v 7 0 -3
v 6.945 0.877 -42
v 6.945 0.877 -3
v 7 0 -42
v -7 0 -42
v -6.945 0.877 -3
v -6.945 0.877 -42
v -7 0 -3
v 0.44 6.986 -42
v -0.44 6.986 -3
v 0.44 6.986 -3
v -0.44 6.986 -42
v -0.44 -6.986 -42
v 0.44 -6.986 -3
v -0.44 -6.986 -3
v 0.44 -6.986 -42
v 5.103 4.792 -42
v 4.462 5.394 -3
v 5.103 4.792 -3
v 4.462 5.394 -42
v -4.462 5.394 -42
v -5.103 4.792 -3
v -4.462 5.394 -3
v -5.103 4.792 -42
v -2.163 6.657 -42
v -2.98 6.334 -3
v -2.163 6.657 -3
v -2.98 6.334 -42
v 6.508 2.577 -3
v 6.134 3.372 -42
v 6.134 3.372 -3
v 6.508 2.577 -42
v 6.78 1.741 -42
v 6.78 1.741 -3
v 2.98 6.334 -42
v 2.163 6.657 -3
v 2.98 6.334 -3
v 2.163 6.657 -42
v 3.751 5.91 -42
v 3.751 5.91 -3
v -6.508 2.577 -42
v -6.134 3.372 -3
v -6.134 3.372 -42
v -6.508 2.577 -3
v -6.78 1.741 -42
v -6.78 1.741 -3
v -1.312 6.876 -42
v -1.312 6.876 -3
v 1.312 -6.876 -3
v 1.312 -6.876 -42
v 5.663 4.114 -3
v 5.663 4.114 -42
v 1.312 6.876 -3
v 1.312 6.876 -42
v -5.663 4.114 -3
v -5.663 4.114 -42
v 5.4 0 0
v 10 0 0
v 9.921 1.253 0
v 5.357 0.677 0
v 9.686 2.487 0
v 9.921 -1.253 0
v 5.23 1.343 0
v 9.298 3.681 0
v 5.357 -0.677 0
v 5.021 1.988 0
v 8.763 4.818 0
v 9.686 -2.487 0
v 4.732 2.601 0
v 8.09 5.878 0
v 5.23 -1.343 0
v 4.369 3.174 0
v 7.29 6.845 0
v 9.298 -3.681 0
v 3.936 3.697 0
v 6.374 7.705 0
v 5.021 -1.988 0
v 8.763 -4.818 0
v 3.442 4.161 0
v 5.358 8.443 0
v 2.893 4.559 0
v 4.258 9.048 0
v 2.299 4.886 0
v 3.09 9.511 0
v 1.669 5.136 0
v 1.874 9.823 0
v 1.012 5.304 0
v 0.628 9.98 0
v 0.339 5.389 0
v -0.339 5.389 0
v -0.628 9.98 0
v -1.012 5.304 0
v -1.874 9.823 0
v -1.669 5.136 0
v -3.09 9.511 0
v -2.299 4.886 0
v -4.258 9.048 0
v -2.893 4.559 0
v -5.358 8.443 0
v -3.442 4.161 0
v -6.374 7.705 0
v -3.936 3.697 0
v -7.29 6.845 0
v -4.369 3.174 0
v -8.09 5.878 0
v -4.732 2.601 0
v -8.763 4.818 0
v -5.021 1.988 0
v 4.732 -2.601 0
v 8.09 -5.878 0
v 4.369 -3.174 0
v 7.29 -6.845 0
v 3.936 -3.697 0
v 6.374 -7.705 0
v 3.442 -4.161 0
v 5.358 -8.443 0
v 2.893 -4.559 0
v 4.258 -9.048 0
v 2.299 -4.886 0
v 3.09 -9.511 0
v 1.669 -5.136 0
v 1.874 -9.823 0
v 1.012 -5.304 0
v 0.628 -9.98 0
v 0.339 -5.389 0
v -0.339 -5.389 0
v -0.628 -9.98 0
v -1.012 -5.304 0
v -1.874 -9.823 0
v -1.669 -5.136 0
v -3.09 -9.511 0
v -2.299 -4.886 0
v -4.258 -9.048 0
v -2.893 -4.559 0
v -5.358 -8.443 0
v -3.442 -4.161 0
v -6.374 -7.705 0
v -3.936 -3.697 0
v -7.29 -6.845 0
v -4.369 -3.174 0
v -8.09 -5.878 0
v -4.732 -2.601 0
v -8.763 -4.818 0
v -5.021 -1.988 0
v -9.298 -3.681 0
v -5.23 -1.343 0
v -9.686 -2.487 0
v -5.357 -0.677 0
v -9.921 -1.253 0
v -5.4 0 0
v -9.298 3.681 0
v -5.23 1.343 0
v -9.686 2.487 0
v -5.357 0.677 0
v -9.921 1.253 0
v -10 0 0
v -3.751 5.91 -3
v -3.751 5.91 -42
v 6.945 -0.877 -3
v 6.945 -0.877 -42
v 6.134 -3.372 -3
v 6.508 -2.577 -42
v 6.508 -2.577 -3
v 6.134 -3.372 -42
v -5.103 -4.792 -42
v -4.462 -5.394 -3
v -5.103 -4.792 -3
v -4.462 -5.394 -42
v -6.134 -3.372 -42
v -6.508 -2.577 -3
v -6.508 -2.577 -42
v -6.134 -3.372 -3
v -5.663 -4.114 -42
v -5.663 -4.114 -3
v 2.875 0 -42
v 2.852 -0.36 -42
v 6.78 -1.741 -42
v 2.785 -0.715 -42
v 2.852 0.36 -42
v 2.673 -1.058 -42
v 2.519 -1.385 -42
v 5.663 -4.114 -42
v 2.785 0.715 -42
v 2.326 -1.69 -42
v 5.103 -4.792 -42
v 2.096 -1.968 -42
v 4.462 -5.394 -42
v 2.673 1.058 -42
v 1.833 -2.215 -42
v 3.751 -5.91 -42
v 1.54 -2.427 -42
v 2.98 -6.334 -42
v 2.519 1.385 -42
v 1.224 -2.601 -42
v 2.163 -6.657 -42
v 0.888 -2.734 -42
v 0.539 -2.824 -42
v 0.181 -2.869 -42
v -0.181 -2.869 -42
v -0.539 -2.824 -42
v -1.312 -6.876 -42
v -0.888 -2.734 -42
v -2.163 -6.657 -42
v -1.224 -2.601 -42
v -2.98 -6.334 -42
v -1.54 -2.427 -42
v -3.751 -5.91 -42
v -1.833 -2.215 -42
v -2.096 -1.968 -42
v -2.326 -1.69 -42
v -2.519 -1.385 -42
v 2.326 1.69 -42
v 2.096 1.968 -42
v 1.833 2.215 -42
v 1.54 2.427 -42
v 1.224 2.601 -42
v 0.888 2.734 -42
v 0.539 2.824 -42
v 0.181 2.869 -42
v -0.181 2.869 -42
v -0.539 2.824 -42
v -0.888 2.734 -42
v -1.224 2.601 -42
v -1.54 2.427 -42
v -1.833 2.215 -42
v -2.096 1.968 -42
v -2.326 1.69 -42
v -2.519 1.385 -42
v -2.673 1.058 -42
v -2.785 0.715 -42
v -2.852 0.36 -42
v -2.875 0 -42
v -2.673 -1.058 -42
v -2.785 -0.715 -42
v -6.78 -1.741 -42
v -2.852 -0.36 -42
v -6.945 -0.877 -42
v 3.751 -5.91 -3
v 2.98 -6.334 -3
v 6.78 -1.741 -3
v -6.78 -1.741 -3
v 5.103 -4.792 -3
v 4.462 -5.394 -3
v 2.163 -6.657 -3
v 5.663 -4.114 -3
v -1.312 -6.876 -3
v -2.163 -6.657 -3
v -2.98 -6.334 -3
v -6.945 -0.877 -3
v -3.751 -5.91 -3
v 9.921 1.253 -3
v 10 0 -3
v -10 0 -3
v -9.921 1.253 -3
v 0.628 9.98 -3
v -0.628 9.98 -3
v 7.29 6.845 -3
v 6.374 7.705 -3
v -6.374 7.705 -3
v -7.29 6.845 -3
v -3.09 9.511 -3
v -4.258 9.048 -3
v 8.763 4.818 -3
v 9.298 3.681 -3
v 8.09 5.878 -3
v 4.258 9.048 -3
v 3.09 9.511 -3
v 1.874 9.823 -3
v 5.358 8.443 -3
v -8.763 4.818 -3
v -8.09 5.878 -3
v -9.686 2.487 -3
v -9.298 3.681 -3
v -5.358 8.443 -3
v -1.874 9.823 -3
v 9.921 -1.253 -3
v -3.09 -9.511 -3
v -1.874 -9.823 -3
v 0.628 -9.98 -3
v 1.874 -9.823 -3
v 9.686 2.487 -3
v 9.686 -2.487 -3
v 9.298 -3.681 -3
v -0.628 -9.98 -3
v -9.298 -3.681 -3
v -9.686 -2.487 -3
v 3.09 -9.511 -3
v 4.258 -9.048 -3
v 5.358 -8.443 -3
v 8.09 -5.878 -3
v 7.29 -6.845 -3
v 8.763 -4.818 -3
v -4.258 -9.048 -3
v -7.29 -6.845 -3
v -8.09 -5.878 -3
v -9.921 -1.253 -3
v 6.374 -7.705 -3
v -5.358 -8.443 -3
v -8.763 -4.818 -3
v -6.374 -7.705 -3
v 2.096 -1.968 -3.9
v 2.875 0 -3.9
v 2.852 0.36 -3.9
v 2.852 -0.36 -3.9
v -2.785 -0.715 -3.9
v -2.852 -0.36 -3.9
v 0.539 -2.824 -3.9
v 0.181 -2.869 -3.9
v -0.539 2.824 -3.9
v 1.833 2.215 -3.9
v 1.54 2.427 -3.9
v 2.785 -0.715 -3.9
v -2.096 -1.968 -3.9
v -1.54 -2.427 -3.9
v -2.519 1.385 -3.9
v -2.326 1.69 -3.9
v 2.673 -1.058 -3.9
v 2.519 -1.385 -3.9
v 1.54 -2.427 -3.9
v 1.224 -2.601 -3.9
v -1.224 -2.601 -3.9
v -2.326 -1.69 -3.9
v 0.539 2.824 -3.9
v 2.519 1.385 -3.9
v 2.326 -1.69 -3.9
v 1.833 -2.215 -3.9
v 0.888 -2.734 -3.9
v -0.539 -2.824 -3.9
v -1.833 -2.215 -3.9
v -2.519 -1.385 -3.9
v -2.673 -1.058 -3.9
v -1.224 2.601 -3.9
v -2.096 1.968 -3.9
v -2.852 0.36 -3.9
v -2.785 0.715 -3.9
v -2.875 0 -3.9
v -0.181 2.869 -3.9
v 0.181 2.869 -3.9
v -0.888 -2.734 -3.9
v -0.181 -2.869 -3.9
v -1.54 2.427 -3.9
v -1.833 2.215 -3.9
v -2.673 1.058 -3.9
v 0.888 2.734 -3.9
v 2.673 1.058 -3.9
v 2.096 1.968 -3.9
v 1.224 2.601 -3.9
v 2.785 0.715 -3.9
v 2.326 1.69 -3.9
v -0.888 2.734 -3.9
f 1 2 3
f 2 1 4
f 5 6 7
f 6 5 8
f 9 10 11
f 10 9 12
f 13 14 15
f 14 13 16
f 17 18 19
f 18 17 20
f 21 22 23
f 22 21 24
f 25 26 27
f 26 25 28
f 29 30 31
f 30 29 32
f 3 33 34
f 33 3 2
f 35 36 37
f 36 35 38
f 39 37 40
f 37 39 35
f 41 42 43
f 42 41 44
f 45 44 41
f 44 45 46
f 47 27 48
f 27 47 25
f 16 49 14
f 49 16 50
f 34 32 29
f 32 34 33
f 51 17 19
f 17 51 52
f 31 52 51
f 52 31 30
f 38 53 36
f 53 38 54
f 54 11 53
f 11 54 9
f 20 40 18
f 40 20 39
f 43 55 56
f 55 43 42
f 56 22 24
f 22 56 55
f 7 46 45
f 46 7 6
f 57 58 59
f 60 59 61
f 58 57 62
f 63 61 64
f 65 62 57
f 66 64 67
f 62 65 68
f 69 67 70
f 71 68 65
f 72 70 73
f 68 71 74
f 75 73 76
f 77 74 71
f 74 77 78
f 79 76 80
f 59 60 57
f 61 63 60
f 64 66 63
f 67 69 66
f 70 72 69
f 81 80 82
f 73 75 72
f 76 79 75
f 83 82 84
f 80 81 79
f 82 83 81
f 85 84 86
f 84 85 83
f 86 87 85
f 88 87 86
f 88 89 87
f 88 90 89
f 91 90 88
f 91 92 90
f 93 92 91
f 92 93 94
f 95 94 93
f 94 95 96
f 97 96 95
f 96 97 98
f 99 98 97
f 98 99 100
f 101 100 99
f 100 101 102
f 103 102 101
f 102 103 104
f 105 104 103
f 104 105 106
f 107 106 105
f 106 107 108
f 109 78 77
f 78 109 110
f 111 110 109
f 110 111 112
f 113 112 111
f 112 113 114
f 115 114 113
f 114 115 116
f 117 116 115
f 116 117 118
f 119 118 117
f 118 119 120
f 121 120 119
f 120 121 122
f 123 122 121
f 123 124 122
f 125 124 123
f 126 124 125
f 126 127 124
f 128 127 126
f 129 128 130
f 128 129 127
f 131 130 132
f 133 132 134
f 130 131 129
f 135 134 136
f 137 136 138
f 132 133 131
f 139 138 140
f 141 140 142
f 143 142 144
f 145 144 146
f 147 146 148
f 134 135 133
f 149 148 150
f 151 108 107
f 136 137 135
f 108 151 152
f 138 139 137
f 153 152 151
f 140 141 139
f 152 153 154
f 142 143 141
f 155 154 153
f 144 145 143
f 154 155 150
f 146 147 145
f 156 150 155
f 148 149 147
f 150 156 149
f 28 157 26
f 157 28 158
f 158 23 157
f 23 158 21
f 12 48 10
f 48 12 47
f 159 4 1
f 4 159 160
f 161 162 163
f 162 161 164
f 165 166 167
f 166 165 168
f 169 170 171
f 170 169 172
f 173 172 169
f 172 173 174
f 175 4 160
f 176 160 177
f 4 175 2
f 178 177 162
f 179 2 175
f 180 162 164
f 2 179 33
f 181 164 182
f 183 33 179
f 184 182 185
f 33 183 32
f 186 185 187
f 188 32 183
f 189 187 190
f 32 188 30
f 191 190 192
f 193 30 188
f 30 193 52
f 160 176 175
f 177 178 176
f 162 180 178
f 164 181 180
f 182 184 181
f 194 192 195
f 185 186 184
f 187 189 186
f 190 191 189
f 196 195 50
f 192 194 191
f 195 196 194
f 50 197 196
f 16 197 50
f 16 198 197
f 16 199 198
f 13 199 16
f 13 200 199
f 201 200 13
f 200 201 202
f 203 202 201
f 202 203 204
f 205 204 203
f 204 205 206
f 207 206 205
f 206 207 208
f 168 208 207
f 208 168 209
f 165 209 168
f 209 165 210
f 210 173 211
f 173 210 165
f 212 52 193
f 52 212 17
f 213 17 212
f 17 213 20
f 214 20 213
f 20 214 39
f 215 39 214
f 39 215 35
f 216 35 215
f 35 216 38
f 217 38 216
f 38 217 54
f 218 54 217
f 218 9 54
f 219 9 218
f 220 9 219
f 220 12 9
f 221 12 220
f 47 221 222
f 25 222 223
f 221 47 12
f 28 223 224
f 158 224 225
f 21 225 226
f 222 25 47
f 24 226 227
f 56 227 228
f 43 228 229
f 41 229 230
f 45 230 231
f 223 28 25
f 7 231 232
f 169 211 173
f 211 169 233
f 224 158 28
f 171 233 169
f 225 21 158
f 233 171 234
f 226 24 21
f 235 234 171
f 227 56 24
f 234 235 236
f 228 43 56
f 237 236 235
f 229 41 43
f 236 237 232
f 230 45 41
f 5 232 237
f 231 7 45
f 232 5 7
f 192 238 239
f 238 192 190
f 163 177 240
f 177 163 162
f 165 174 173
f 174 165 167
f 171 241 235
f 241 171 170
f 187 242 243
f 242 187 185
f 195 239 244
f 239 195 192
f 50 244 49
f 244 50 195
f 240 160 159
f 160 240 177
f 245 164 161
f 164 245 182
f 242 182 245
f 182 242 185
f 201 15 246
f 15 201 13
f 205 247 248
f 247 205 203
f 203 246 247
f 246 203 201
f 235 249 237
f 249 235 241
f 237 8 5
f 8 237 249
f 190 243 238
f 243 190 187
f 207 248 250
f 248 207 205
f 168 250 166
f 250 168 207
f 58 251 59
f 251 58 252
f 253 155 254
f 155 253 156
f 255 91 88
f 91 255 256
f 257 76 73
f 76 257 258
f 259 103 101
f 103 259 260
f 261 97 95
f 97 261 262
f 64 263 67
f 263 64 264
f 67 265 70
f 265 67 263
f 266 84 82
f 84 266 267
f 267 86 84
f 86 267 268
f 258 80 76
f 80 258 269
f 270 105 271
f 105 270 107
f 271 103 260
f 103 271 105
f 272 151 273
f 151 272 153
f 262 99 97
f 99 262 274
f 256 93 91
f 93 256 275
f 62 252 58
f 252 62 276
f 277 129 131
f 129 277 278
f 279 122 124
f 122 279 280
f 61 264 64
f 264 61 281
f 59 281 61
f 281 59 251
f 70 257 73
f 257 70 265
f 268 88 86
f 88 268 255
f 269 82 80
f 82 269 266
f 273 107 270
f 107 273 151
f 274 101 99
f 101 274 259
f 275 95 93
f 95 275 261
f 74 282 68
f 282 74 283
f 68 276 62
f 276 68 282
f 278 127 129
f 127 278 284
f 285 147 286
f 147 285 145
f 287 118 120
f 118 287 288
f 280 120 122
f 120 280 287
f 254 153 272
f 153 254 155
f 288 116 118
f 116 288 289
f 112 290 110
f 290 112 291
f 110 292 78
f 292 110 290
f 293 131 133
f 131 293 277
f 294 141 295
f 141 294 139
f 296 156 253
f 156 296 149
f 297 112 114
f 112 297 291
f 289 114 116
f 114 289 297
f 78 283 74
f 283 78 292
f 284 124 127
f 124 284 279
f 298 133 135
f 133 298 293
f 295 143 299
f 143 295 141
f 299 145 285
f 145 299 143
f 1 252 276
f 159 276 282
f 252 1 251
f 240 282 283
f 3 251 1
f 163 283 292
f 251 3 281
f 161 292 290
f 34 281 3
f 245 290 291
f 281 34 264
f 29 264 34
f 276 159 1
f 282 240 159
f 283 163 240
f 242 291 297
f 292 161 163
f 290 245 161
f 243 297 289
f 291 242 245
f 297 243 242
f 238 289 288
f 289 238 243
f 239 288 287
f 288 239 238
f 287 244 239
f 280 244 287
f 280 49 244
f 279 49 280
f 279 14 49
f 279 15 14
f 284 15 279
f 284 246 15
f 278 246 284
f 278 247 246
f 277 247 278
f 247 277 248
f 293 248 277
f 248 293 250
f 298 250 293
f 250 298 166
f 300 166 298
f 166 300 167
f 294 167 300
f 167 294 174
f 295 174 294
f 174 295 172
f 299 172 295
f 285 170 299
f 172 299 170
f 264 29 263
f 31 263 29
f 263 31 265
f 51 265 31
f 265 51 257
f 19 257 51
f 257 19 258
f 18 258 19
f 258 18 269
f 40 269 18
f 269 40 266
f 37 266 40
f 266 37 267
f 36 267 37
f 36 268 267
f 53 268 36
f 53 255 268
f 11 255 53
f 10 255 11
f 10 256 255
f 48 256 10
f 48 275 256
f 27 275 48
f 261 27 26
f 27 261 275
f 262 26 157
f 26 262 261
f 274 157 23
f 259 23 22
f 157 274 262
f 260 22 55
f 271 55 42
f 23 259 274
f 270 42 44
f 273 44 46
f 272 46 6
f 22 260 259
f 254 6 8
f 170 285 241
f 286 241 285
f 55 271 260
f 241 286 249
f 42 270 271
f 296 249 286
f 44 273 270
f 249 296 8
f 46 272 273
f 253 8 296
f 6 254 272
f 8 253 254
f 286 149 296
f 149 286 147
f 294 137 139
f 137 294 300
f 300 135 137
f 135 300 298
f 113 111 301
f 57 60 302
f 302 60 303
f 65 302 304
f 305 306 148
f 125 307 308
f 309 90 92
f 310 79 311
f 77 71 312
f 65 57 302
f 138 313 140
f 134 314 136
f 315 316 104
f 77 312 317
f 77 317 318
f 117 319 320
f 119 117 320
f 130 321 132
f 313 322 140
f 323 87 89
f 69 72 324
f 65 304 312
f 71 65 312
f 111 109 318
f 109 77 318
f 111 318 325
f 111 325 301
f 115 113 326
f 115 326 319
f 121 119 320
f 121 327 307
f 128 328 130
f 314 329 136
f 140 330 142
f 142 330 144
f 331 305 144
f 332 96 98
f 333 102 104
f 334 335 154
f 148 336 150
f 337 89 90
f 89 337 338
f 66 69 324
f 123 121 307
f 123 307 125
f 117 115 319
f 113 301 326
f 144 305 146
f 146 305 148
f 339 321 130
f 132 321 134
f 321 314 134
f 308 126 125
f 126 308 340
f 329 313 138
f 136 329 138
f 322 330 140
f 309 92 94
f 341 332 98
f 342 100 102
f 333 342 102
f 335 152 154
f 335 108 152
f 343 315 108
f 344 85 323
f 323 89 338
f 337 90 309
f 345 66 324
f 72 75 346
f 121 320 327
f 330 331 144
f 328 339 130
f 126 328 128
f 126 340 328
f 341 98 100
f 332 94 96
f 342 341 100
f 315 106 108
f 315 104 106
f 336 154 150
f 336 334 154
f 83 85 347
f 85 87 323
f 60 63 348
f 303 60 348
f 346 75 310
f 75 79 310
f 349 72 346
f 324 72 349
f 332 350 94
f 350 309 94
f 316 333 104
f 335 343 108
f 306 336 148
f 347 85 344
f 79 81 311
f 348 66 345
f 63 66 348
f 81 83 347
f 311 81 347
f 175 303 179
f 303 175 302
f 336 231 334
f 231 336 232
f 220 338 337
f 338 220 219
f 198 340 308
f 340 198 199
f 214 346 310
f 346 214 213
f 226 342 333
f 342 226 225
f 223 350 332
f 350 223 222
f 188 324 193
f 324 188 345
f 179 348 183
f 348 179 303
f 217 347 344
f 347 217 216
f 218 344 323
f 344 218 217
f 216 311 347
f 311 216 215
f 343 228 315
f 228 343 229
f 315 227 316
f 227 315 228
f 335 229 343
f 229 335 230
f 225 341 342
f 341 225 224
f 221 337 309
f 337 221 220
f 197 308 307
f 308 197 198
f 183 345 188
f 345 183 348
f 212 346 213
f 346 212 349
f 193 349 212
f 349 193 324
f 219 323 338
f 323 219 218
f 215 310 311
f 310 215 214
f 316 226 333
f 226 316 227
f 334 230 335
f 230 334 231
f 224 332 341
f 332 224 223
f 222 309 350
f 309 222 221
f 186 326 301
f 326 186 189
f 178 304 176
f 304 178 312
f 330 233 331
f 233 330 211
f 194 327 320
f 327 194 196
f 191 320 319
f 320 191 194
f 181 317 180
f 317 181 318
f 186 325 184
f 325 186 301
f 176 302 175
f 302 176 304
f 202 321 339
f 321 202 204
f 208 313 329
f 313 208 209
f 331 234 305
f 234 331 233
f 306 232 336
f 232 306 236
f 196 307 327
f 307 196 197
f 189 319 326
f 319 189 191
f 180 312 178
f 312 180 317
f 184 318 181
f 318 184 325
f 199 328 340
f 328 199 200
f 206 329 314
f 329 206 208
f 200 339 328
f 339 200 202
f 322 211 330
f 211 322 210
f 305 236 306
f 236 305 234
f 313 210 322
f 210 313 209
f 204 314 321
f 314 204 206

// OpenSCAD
$fn = 50;


difference() {
	union() {
		translate(v = [0, 0, -42.0000000000]) {
			cylinder(h = 42, r = 7.0000000000);
		}
		translate(v = [0, 0, -3.0000000000]) {
			cylinder(h = 3, r = 10.0000000000);
		}
	}
	union() {
		translate(v = [0, 0, 0]) {
			rotate(a = [0, 0, 0]) {
				difference() {
					union() {
						#translate(v = [0, 0, -42.0000000000]) {
							cylinder(h = 42, r = 2.6000000000);
						}
						#translate(v = [0, 0, -3.9000000000]) {
							cylinder(h = 3.9000000000, r = 7.0000000000, r1 = 2.8750000000, r2 = 5.4000000000);
						}
						#translate(v = [0, 0, -42.0000000000]) {
							cylinder(h = 42, r = 2.8750000000);
						}
						#translate(v = [0, 0, -42.0000000000]) {
							cylinder(h = 42, r = 2.6000000000);
						}
					}
					union();
				}
			}
		}
	}
}
